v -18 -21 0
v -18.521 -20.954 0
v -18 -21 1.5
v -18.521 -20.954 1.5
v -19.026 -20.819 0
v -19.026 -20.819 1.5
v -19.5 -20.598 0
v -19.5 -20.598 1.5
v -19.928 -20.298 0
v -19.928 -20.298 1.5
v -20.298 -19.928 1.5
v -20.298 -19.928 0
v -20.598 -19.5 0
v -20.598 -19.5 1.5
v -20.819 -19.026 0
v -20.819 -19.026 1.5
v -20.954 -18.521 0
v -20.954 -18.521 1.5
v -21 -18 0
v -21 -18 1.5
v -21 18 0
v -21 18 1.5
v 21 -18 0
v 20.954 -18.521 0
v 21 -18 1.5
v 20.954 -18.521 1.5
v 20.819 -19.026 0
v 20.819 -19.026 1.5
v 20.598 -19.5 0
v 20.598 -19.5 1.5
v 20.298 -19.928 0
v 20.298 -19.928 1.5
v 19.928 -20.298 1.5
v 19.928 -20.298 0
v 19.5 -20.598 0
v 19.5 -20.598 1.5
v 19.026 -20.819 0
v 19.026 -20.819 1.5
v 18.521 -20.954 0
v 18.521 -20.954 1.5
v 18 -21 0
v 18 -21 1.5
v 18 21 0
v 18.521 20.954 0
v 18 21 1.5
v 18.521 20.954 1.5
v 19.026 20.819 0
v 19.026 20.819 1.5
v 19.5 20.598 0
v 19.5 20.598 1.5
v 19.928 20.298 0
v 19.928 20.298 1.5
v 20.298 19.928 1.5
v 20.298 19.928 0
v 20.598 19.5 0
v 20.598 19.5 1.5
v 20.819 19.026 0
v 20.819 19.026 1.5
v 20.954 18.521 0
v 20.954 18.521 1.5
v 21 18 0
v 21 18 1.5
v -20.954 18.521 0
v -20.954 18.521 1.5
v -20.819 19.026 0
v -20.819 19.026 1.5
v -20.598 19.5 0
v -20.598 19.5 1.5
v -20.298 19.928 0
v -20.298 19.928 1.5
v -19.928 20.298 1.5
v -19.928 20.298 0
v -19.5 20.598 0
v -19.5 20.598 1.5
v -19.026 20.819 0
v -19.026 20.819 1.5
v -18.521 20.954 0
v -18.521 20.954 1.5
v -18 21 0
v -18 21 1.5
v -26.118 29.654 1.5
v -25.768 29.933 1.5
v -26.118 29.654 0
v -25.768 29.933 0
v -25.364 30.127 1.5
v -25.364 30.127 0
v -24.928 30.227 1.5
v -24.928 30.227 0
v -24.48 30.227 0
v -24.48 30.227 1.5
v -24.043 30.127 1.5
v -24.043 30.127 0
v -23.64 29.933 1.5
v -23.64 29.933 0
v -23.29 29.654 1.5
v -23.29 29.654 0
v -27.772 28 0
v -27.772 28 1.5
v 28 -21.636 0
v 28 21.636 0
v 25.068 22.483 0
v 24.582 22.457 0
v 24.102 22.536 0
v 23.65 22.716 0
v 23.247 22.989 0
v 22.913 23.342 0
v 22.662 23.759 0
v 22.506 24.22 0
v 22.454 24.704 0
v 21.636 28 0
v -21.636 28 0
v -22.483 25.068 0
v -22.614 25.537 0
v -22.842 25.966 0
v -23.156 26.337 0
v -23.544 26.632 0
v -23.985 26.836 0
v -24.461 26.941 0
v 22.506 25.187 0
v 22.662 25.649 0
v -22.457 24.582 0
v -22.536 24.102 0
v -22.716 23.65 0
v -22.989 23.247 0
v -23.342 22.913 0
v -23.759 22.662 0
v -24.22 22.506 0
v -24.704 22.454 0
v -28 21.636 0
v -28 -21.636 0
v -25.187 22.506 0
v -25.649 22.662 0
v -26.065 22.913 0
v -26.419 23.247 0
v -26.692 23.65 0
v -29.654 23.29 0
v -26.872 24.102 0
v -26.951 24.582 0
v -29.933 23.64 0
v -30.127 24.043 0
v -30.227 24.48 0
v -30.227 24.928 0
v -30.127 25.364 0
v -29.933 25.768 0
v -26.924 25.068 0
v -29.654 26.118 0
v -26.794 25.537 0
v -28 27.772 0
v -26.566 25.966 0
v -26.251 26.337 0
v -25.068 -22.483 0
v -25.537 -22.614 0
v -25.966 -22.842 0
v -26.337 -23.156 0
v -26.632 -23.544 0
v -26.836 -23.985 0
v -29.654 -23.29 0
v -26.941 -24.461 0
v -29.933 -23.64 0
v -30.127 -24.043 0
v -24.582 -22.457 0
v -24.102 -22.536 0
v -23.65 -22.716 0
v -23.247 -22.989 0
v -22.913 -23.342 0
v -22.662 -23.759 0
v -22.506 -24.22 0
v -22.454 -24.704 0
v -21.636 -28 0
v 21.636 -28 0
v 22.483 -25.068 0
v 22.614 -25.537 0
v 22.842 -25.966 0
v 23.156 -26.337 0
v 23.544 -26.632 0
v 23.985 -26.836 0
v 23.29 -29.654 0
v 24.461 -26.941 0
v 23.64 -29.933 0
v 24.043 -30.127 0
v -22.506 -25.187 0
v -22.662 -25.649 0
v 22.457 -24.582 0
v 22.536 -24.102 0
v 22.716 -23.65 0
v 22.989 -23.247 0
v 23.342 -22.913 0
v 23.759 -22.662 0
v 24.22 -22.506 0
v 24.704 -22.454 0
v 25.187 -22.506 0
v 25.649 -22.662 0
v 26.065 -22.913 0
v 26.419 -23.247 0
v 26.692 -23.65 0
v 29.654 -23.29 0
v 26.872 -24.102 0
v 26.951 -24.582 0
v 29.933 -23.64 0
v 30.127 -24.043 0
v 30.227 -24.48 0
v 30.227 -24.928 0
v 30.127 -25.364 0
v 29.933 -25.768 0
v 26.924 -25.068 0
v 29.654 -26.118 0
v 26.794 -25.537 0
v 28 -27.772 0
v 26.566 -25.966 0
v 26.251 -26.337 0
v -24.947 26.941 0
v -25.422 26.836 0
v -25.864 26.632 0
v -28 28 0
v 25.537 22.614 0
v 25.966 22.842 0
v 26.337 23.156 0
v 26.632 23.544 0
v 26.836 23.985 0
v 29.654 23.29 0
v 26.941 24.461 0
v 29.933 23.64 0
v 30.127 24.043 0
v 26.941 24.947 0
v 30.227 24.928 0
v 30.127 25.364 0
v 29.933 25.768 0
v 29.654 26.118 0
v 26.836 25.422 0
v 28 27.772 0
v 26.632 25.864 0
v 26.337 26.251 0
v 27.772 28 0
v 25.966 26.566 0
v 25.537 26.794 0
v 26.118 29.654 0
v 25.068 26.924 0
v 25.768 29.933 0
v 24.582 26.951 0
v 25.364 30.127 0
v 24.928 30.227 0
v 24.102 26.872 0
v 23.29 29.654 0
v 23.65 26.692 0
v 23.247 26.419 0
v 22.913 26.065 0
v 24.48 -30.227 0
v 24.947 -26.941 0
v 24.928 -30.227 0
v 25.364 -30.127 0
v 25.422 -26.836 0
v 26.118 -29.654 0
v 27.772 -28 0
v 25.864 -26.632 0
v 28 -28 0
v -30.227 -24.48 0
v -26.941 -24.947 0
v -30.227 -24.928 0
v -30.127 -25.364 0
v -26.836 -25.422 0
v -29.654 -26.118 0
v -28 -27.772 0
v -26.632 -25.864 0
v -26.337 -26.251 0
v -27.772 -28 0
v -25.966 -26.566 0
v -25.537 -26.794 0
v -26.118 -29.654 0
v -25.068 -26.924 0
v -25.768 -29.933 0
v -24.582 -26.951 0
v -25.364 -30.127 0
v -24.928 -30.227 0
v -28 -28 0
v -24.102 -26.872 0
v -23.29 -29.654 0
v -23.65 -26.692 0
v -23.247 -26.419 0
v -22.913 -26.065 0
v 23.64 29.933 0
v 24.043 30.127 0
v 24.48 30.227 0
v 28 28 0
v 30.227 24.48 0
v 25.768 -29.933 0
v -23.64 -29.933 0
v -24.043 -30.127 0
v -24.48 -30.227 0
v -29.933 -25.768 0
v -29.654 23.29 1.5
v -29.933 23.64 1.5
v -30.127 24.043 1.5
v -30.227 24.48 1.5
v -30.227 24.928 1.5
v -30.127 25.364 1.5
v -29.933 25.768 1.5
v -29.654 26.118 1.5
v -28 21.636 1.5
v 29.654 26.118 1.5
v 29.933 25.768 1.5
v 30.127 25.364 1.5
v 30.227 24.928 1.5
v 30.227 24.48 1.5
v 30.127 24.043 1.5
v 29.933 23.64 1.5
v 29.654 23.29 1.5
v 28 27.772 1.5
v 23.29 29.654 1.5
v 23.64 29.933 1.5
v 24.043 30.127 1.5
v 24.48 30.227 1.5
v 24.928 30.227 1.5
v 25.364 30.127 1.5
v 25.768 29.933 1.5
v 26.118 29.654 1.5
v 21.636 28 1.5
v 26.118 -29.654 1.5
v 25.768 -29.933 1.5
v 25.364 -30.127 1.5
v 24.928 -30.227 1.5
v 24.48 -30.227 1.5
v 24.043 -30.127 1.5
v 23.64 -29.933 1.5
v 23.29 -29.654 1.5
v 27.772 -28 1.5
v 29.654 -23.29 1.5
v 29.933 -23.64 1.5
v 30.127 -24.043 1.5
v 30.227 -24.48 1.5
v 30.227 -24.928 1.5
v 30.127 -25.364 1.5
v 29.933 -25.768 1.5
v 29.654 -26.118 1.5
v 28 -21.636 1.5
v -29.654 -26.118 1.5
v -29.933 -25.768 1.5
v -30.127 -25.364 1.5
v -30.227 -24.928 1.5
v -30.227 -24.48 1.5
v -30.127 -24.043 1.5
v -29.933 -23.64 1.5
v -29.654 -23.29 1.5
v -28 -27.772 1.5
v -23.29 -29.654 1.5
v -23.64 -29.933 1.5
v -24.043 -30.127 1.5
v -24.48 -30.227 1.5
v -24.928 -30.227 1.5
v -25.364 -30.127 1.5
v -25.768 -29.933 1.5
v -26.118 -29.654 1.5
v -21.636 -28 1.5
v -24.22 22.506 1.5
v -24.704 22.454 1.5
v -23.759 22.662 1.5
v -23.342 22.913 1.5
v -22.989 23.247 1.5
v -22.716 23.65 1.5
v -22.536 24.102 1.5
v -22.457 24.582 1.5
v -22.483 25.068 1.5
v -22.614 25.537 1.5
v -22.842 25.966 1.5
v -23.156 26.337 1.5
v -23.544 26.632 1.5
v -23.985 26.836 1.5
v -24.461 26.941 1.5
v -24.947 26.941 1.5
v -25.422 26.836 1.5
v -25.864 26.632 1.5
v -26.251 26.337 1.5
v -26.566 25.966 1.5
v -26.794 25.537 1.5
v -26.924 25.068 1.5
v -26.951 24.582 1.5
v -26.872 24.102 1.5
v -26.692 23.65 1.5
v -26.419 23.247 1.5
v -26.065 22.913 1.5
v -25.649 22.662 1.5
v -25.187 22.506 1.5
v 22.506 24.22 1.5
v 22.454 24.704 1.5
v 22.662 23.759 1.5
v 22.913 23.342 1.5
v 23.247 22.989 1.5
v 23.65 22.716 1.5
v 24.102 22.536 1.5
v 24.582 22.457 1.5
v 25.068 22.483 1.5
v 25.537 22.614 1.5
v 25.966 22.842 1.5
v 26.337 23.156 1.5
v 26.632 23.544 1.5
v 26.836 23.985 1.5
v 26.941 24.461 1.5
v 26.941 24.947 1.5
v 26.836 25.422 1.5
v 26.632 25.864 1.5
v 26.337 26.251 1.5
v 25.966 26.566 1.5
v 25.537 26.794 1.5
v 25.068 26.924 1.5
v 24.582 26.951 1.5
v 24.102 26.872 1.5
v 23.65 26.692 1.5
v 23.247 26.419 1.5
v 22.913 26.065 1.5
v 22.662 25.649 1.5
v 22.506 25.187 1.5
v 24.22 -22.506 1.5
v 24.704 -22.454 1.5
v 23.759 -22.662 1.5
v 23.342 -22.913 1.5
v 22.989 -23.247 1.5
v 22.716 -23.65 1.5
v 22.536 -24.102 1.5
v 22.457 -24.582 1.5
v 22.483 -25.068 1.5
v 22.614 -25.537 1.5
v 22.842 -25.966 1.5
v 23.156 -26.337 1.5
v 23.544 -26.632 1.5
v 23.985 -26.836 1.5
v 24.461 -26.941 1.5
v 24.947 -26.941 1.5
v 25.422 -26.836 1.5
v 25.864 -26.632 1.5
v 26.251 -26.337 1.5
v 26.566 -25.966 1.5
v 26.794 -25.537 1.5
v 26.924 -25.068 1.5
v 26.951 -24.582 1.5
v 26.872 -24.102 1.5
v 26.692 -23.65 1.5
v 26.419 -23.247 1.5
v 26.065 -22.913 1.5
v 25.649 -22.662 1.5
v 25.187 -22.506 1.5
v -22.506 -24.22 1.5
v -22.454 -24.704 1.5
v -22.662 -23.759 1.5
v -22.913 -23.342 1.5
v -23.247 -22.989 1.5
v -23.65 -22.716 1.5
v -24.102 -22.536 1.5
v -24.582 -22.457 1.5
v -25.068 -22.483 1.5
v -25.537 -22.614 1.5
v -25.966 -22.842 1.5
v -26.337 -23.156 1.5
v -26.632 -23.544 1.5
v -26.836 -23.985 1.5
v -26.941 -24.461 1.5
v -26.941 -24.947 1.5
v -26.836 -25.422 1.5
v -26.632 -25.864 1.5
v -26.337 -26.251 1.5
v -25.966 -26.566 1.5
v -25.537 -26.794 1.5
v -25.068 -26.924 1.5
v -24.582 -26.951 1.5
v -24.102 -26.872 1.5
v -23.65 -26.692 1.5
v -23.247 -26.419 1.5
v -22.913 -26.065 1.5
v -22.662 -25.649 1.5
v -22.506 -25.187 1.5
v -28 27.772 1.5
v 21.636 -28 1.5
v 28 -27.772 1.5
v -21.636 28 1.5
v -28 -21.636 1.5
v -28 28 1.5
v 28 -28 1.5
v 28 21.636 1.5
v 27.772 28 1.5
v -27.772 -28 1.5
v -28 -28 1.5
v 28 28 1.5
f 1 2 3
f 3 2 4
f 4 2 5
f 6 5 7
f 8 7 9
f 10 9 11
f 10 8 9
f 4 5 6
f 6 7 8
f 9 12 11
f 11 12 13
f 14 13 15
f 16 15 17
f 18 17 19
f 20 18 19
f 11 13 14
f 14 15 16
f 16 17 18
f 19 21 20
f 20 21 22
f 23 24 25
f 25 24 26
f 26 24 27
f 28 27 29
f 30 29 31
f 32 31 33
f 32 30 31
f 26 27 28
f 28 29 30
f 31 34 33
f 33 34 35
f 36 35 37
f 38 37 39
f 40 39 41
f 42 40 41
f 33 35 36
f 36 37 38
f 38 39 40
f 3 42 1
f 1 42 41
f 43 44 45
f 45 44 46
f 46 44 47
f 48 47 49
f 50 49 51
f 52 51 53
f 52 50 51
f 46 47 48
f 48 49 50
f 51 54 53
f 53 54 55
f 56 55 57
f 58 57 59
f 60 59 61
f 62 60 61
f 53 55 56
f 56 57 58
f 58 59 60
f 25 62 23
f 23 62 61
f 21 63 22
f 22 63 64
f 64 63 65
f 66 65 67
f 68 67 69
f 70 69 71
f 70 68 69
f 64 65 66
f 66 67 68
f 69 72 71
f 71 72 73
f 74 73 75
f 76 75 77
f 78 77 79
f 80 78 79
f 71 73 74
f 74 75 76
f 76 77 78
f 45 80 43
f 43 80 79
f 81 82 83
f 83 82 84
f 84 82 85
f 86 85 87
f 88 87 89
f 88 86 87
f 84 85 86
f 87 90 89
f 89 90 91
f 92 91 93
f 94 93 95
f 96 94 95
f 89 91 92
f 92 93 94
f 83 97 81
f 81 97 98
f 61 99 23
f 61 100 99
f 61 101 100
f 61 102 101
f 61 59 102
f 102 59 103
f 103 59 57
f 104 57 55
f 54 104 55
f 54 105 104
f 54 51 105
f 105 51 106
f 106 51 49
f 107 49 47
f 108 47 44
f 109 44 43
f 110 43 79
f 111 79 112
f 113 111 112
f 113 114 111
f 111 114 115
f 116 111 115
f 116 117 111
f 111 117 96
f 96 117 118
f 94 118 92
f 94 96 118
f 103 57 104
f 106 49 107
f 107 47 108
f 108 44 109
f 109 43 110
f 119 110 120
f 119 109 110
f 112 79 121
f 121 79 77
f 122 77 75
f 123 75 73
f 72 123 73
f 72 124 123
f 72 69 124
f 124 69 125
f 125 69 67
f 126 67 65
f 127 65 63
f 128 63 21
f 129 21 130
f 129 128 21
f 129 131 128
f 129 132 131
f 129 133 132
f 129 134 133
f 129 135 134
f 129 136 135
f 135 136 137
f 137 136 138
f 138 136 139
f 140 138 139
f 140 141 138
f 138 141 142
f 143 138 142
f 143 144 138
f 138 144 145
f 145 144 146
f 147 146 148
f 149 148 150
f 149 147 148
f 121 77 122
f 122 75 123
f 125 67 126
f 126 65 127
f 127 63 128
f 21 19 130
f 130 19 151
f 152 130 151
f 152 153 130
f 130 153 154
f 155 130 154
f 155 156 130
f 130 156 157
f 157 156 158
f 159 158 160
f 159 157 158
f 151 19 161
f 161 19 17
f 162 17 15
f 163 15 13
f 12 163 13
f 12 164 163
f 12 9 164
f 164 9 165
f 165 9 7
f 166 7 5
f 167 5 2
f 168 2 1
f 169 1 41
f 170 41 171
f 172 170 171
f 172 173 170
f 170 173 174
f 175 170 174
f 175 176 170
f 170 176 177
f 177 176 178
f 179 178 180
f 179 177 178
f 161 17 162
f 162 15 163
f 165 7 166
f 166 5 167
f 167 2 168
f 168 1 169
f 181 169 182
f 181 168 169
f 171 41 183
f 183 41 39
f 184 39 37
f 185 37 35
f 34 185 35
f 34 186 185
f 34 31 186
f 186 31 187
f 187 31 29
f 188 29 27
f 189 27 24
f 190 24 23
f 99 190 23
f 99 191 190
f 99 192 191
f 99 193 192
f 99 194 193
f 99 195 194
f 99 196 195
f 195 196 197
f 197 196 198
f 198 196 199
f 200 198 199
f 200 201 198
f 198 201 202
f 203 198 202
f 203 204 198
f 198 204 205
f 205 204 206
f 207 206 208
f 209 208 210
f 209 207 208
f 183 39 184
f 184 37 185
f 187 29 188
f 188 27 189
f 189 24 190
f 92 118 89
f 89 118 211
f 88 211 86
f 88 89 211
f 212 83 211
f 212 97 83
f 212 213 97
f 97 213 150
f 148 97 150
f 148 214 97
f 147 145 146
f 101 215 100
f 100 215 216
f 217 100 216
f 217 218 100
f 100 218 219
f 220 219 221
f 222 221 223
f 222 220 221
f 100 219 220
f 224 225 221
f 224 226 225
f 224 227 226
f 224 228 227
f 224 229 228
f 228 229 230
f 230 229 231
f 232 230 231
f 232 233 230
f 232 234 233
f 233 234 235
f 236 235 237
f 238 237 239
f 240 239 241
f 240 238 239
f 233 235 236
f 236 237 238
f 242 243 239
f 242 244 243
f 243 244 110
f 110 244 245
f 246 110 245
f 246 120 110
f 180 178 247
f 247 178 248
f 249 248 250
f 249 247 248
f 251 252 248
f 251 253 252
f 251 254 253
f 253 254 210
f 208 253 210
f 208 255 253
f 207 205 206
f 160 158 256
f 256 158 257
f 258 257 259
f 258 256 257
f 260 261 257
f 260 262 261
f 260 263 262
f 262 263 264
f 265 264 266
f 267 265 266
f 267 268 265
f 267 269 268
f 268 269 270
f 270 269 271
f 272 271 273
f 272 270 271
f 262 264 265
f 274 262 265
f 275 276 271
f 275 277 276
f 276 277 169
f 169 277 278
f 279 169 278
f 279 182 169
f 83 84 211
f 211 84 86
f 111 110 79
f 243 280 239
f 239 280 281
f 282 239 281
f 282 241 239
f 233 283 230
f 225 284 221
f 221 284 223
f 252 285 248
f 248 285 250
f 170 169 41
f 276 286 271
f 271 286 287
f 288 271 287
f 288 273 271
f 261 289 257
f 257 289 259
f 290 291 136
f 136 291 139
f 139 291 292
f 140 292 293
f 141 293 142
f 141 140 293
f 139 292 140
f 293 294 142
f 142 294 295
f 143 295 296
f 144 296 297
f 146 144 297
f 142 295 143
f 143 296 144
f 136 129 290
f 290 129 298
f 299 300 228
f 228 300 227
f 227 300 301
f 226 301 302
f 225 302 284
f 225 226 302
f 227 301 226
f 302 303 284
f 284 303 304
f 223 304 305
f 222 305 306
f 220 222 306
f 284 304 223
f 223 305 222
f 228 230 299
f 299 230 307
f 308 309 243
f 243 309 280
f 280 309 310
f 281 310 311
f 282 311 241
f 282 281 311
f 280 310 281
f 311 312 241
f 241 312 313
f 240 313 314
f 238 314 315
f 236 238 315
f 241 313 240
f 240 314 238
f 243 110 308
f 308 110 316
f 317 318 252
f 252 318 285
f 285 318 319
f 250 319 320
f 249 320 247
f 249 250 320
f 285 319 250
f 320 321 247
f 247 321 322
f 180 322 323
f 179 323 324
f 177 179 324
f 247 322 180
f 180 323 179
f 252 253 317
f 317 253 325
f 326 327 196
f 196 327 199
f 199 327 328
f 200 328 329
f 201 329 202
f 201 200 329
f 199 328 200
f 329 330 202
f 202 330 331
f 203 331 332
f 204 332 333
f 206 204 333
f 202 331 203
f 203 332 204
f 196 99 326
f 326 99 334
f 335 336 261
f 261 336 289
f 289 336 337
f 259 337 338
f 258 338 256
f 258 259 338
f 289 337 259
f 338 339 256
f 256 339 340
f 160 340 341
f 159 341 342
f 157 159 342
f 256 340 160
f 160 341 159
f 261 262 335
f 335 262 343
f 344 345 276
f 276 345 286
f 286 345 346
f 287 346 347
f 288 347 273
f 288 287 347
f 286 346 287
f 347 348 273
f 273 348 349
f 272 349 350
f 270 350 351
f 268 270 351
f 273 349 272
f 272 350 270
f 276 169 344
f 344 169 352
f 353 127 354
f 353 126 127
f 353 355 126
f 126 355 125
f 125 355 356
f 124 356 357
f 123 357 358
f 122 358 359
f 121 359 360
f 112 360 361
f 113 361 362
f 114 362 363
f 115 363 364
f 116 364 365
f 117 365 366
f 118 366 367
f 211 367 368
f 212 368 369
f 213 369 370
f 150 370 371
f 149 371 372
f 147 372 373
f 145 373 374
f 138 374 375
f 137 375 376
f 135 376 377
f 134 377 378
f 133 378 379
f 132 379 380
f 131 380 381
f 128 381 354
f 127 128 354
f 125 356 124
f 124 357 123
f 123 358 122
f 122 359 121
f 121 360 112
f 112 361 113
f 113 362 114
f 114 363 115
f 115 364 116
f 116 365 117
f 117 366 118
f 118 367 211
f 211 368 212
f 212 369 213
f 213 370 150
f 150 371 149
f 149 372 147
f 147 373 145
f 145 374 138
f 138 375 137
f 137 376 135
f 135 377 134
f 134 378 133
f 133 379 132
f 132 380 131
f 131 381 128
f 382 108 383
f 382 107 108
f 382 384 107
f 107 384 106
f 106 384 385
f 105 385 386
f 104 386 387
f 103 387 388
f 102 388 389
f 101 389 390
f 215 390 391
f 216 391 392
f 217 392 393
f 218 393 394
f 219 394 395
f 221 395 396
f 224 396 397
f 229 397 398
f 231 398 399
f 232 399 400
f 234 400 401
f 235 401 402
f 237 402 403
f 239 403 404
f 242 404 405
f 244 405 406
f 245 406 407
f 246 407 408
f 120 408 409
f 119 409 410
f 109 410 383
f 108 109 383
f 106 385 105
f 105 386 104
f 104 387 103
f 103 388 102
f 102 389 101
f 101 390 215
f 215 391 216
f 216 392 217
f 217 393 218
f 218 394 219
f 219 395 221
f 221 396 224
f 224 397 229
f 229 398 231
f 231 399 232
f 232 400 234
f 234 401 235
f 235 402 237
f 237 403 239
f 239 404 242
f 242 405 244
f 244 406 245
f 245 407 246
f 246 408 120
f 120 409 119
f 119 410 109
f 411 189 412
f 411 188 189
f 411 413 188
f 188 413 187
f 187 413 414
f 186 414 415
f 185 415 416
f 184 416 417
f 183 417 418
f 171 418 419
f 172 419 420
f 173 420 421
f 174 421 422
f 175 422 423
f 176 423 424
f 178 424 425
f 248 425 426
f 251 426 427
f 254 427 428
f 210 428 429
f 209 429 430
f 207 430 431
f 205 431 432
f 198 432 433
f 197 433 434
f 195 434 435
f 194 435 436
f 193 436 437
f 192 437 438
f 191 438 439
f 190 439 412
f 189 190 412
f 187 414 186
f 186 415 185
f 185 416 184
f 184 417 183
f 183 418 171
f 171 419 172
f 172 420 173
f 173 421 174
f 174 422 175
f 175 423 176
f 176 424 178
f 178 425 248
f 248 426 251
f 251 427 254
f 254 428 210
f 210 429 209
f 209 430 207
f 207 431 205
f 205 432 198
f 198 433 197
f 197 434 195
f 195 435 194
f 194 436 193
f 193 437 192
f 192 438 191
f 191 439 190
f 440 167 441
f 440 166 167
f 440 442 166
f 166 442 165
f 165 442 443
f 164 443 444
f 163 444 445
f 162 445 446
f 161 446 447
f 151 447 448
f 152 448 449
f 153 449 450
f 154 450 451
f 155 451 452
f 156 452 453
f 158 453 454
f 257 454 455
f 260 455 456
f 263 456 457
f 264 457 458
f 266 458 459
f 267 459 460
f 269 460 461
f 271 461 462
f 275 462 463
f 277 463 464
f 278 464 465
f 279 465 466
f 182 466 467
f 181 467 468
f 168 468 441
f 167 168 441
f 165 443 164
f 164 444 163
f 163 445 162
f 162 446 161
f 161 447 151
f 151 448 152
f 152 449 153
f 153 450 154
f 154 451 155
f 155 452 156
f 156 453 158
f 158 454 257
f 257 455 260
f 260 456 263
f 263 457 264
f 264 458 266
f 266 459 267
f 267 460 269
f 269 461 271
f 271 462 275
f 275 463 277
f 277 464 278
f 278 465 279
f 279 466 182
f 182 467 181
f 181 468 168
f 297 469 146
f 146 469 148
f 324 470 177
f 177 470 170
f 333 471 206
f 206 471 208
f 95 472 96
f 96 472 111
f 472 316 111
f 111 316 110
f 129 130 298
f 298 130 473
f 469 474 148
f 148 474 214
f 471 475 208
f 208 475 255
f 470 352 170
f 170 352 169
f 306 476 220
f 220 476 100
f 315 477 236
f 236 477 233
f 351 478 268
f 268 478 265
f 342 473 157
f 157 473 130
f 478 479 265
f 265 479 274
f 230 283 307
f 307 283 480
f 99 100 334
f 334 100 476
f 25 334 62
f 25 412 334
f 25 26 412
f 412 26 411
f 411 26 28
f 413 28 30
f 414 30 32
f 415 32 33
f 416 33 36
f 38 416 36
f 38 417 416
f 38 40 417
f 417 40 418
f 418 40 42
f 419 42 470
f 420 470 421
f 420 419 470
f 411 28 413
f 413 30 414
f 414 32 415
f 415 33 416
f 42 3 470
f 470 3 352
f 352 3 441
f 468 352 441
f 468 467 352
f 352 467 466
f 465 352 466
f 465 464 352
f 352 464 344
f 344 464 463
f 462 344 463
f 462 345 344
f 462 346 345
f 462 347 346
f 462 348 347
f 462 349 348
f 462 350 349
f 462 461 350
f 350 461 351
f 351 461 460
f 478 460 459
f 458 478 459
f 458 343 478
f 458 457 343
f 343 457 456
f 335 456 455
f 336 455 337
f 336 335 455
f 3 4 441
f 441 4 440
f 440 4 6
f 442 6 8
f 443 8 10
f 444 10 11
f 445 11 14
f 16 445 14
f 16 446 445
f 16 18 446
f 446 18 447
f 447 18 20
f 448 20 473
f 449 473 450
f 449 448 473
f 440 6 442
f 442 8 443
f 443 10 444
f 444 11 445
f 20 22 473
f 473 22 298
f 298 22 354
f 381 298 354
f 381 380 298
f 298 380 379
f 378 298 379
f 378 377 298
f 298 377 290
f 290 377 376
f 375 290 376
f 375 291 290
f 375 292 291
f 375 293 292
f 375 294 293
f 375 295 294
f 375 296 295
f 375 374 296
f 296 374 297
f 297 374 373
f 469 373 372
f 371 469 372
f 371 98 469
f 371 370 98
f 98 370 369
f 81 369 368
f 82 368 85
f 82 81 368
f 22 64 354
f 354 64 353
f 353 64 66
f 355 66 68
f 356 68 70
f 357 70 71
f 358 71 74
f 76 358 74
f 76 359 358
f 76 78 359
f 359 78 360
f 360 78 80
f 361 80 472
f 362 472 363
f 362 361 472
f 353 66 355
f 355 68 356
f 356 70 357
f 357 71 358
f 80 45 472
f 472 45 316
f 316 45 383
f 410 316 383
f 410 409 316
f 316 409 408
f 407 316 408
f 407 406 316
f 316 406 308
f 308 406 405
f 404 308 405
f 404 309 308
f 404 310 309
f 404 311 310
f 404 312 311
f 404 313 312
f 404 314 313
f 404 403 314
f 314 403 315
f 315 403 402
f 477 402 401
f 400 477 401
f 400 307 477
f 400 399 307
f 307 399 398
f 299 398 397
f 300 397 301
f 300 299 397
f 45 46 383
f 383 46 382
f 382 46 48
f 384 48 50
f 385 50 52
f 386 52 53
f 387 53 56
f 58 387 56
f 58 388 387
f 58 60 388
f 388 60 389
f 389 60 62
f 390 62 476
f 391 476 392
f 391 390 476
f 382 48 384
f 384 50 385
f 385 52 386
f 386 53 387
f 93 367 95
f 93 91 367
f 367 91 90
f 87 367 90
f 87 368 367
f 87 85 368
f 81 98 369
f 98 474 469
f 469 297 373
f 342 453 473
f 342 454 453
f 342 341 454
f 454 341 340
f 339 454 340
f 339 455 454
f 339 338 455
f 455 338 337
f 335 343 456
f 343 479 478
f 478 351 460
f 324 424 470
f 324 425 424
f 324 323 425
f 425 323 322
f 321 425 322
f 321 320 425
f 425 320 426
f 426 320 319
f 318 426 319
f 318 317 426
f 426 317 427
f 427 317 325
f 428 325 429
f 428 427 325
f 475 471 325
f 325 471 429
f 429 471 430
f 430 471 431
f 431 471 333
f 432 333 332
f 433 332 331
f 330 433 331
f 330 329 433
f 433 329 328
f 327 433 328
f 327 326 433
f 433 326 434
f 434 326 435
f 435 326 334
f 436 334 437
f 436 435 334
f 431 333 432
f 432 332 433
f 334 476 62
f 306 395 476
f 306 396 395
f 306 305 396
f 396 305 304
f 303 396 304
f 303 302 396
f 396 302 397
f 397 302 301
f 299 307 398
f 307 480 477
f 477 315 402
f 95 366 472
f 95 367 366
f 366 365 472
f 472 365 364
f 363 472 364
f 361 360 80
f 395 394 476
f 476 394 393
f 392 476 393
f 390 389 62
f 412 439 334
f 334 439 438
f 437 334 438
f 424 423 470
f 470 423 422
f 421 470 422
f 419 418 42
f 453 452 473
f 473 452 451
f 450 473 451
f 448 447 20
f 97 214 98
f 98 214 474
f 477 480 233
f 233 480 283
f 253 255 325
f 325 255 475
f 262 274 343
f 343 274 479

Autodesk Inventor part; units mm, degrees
ref_plane "YZ Plane" through (0, 0, 0) normal (1, 0, 0) x (0, 1, 0)
ref_plane "XZ Plane" through (0, 0, 0) normal (0, 1, 0) x (-1, 0, 0)
ref_plane "XY Plane" through (0, 0, 0) normal (0, 0, 1) x (1, 0, 0)
sketch "Sketch1" plane through (0, 0, 0) normal (0, 0, 1) x (1, 0, 0)
  line L0 (-48, 48) -> (48, 48)
  line L1 (48, 48) -> (48, -48)
  line L2 (48, -48) -> (-48, -48)
  line L3 (-48, -48) -> (-48, 48)
  line L4 (38, 38) -> (-38, 38)
  line L5 (-38, 38) -> (-38, -38)
  line L6 (-38, -38) -> (38, -38)
  line L7 (38, -38) -> (38, 38)
  line L8 (0, 152.7233) -> (0, -72.1628) construction
  line L9 (-77.8847, 0) -> (88.8171, 0) construction
  line L10 (-48, 43) -> (48, 43) construction
  line L11 (-43, 48) -> (-43, -48) construction
  line L12 (-48, -43) -> (48, -43) construction
  circle A0 centre (-43, 25) radius 2.25
  circle A1 centre (-43, -25) radius 2.25
  circle A2 centre (-43, -43) radius 2.25
  circle A3 centre (-43, 43) radius 2.25
  line L13 (-48, 30) -> (48, 30) construction
  line L14 (-48, -30) -> (48, -30) construction
  line L15 (-50, 31) -> (-36, 31)
  line L16 (-36, 31) -> (-36, -31)
  line L17 (-36, -31) -> (-50, -31)
  line L18 (-50, -31) -> (-50, 31)
  point P0 (0, 0)
  point P1 (0, 48)
  point P2 (48, 0)
  dimension "d0" = 96
  dimension "d1" = 96
  dimension "d2" = 10
  dimension "d5" = 5
  dimension "d11" = 5
  dimension "d14" = 5
  dimension "d31" = 4.5
  dimension "d32" = 4.5
  dimension "d61" = 4.5
  dimension "d62" = 4.5
  dimension "d65" = 30
  dimension "d66" = 30
  dimension "d67" = 5
  dimension "d68" = 5
  dimension "d74" = 1
  dimension "d75" = 1
  dimension "d76" = 2
  dimension "d77" = 2
sketch "Sketch3" plane through (0, 0, 0) normal (0, 0, 1) x (1, 0, 0)
  circle A0 centre (-43, 43) radius 2.25 projected
  circle A1 centre (-43, -43) radius 2.25 projected
  line L0 (48, -48) -> (-48, -48) projected
  line L1 (-48, -48) -> (-48, 48) projected
  line L2 (-38, -38) -> (38, -38) projected
  line L3 (-38, 38) -> (-38, -38) projected
  line L4 (38, 38) -> (-38, 38) projected
  line L5 (-48, 48) -> (48, 48) projected
  line L6 (0, 62.8599) -> (0, -69.2948) construction
  line L7 (-75.2692, 0) -> (82.2152, 0) construction
  line L8 (-28, 28) -> (28, 28)
  line L9 (28, 28) -> (28, -28)
  line L10 (28, -28) -> (-28, -28)
  line L11 (-28, -28) -> (-28, 28)
  line L12 (38, -38) -> (38, 38) projected
  line L13 (48, 48) -> (48, -48) projected
  line L14 (-31.0678, -24.7038) -> (24.7038, 31.0678)
  line L15 (24.7038, 31.0678) -> (31.0678, 24.7038)
  line L16 (31.0678, 24.7038) -> (-24.7038, -31.0678)
  line L17 (-24.7038, -31.0678) -> (-31.0678, -24.7038)
  line L18 (-37.8254, -37.8254) -> (27.8858, 27.8858) construction
  line L19 (-3.182, 3.182) -> (3.182, -3.182) construction
  line L20 (-48, -48) -> (-29.3, -48)
  line L21 (-29.3, -48) -> (-29.3, -29.3)
  line L22 (-29.3, -29.3) -> (-48, -29.3)
  line L23 (-48, -29.3) -> (-48, -48)
  line L24 (-35.664, -29.3) -> (-25.0574, -18.6934)
  line L25 (-25.0574, -18.6934) -> (-18.6934, -25.0574)
  line L26 (-18.6934, -25.0574) -> (-29.3, -35.664)
  line L27 (-29.3, -35.664) -> (-35.664, -29.3)
  line L28 (-32.482, -32.482) -> (-21.8754, -21.8754) construction
  line L29 (-30.3607, -23.9967) -> (-23.9967, -30.3607) construction
  circle A2 centre (-24.7038, -24.7038) radius 2.25
  line L30 (-21, 21) -> (21, 21)
  line L31 (21, 21) -> (21, -21)
  line L32 (21, -21) -> (-21, -21)
  line L33 (-21, -21) -> (-21, 21)
  point P0 (0, 0)
  point P1 (0, 0)
  point P2 (0, 21)
  point P3 (0, 28)
  point P4 (21, 0)
  point P5 (28, 0)
  dimension "d80" = 9
  dimension "d81" = 18.7
  dimension "d83" = 10
  dimension "d84" = 10
  dimension "d85" = 10
  dimension "d86" = 10
  dimension "d98" = 15
  dimension "d99" = 9
  dimension "d100" = 4.5
  dimension "d101" = 4
  dimension "d102" = 1
  dimension "d108" = 18.7
  dimension "d113" = 42
  dimension "d114" = 42
extrude "Extrusion7" add sketch "Sketch3" along normal blind 1.5 contours L16 L32 L31 L9 L10 | L10 L17 L11 L14 L25 L16 | L10 L11 L17 | L25 L14 L33 L32 L16 | L11 L8 L14 L30 L33 | L16 L31 L30 L14 L8 L15 L9 | L32 L33 L14 L30 L31 L16 | L16 L31 L32 | L15 L8 L9 | L33 L30 L14 | A2
extrude "Extrusion9" add sketch "Sketch3" along normal blind 1.5 contours L17 L10 L16 | L10 L17 L11 L14 L25 L16 | L14 L11 L17 | L25 L14 L33 L32 L16 | L16 L31 L30 L14 L8 L15 L9 | L9 L15 L16 | L32 L33 L14 L30 L31 L16 | L14 L15 L8 | A2
mirror "Mirror6" about plane through (0, 0, 0) normal (1, 0, 0) of "Extrusion9"
extrude "Extrusion10" cut sketch "Sketch3" along normal blind 10 contours A2
pattern_circular "Circular Pattern3" count 4 over 360 about axis through (0, 0, -10) along (0, 0, 1) of "Extrusion10"
fillet "Fillet2" radius 2 2 edges at (-24.7038, -31.0678, 0.75) (-31.0678, -24.7038, 0.75)
pattern_circular "Circular Pattern4" count 4 over 360 about axis through (0, 0, -10) along (0, 0, 1) of "Fillet2"
extrude "Extrusion11" cut sketch "Sketch3" along normal blind 10 contours L32 L33 L14 L30 L31 L16 | L16 L31 L32 | L33 L30 L14
fillet "Fillet3" radius 3 4 edges at (-21, 21, 0.75) (21, 21, 0.75) (21, -21, 0.75) (-21, -21, 0.75)
equation "\"d31\" = screw"
equation "\"d32\" = screw"
equation "\"d61\" = screw"
equation "\"d62\" = screw"
equation "\"screw\" = 4.5"
properties part number "Base" material "PC/ABS Plastic"
